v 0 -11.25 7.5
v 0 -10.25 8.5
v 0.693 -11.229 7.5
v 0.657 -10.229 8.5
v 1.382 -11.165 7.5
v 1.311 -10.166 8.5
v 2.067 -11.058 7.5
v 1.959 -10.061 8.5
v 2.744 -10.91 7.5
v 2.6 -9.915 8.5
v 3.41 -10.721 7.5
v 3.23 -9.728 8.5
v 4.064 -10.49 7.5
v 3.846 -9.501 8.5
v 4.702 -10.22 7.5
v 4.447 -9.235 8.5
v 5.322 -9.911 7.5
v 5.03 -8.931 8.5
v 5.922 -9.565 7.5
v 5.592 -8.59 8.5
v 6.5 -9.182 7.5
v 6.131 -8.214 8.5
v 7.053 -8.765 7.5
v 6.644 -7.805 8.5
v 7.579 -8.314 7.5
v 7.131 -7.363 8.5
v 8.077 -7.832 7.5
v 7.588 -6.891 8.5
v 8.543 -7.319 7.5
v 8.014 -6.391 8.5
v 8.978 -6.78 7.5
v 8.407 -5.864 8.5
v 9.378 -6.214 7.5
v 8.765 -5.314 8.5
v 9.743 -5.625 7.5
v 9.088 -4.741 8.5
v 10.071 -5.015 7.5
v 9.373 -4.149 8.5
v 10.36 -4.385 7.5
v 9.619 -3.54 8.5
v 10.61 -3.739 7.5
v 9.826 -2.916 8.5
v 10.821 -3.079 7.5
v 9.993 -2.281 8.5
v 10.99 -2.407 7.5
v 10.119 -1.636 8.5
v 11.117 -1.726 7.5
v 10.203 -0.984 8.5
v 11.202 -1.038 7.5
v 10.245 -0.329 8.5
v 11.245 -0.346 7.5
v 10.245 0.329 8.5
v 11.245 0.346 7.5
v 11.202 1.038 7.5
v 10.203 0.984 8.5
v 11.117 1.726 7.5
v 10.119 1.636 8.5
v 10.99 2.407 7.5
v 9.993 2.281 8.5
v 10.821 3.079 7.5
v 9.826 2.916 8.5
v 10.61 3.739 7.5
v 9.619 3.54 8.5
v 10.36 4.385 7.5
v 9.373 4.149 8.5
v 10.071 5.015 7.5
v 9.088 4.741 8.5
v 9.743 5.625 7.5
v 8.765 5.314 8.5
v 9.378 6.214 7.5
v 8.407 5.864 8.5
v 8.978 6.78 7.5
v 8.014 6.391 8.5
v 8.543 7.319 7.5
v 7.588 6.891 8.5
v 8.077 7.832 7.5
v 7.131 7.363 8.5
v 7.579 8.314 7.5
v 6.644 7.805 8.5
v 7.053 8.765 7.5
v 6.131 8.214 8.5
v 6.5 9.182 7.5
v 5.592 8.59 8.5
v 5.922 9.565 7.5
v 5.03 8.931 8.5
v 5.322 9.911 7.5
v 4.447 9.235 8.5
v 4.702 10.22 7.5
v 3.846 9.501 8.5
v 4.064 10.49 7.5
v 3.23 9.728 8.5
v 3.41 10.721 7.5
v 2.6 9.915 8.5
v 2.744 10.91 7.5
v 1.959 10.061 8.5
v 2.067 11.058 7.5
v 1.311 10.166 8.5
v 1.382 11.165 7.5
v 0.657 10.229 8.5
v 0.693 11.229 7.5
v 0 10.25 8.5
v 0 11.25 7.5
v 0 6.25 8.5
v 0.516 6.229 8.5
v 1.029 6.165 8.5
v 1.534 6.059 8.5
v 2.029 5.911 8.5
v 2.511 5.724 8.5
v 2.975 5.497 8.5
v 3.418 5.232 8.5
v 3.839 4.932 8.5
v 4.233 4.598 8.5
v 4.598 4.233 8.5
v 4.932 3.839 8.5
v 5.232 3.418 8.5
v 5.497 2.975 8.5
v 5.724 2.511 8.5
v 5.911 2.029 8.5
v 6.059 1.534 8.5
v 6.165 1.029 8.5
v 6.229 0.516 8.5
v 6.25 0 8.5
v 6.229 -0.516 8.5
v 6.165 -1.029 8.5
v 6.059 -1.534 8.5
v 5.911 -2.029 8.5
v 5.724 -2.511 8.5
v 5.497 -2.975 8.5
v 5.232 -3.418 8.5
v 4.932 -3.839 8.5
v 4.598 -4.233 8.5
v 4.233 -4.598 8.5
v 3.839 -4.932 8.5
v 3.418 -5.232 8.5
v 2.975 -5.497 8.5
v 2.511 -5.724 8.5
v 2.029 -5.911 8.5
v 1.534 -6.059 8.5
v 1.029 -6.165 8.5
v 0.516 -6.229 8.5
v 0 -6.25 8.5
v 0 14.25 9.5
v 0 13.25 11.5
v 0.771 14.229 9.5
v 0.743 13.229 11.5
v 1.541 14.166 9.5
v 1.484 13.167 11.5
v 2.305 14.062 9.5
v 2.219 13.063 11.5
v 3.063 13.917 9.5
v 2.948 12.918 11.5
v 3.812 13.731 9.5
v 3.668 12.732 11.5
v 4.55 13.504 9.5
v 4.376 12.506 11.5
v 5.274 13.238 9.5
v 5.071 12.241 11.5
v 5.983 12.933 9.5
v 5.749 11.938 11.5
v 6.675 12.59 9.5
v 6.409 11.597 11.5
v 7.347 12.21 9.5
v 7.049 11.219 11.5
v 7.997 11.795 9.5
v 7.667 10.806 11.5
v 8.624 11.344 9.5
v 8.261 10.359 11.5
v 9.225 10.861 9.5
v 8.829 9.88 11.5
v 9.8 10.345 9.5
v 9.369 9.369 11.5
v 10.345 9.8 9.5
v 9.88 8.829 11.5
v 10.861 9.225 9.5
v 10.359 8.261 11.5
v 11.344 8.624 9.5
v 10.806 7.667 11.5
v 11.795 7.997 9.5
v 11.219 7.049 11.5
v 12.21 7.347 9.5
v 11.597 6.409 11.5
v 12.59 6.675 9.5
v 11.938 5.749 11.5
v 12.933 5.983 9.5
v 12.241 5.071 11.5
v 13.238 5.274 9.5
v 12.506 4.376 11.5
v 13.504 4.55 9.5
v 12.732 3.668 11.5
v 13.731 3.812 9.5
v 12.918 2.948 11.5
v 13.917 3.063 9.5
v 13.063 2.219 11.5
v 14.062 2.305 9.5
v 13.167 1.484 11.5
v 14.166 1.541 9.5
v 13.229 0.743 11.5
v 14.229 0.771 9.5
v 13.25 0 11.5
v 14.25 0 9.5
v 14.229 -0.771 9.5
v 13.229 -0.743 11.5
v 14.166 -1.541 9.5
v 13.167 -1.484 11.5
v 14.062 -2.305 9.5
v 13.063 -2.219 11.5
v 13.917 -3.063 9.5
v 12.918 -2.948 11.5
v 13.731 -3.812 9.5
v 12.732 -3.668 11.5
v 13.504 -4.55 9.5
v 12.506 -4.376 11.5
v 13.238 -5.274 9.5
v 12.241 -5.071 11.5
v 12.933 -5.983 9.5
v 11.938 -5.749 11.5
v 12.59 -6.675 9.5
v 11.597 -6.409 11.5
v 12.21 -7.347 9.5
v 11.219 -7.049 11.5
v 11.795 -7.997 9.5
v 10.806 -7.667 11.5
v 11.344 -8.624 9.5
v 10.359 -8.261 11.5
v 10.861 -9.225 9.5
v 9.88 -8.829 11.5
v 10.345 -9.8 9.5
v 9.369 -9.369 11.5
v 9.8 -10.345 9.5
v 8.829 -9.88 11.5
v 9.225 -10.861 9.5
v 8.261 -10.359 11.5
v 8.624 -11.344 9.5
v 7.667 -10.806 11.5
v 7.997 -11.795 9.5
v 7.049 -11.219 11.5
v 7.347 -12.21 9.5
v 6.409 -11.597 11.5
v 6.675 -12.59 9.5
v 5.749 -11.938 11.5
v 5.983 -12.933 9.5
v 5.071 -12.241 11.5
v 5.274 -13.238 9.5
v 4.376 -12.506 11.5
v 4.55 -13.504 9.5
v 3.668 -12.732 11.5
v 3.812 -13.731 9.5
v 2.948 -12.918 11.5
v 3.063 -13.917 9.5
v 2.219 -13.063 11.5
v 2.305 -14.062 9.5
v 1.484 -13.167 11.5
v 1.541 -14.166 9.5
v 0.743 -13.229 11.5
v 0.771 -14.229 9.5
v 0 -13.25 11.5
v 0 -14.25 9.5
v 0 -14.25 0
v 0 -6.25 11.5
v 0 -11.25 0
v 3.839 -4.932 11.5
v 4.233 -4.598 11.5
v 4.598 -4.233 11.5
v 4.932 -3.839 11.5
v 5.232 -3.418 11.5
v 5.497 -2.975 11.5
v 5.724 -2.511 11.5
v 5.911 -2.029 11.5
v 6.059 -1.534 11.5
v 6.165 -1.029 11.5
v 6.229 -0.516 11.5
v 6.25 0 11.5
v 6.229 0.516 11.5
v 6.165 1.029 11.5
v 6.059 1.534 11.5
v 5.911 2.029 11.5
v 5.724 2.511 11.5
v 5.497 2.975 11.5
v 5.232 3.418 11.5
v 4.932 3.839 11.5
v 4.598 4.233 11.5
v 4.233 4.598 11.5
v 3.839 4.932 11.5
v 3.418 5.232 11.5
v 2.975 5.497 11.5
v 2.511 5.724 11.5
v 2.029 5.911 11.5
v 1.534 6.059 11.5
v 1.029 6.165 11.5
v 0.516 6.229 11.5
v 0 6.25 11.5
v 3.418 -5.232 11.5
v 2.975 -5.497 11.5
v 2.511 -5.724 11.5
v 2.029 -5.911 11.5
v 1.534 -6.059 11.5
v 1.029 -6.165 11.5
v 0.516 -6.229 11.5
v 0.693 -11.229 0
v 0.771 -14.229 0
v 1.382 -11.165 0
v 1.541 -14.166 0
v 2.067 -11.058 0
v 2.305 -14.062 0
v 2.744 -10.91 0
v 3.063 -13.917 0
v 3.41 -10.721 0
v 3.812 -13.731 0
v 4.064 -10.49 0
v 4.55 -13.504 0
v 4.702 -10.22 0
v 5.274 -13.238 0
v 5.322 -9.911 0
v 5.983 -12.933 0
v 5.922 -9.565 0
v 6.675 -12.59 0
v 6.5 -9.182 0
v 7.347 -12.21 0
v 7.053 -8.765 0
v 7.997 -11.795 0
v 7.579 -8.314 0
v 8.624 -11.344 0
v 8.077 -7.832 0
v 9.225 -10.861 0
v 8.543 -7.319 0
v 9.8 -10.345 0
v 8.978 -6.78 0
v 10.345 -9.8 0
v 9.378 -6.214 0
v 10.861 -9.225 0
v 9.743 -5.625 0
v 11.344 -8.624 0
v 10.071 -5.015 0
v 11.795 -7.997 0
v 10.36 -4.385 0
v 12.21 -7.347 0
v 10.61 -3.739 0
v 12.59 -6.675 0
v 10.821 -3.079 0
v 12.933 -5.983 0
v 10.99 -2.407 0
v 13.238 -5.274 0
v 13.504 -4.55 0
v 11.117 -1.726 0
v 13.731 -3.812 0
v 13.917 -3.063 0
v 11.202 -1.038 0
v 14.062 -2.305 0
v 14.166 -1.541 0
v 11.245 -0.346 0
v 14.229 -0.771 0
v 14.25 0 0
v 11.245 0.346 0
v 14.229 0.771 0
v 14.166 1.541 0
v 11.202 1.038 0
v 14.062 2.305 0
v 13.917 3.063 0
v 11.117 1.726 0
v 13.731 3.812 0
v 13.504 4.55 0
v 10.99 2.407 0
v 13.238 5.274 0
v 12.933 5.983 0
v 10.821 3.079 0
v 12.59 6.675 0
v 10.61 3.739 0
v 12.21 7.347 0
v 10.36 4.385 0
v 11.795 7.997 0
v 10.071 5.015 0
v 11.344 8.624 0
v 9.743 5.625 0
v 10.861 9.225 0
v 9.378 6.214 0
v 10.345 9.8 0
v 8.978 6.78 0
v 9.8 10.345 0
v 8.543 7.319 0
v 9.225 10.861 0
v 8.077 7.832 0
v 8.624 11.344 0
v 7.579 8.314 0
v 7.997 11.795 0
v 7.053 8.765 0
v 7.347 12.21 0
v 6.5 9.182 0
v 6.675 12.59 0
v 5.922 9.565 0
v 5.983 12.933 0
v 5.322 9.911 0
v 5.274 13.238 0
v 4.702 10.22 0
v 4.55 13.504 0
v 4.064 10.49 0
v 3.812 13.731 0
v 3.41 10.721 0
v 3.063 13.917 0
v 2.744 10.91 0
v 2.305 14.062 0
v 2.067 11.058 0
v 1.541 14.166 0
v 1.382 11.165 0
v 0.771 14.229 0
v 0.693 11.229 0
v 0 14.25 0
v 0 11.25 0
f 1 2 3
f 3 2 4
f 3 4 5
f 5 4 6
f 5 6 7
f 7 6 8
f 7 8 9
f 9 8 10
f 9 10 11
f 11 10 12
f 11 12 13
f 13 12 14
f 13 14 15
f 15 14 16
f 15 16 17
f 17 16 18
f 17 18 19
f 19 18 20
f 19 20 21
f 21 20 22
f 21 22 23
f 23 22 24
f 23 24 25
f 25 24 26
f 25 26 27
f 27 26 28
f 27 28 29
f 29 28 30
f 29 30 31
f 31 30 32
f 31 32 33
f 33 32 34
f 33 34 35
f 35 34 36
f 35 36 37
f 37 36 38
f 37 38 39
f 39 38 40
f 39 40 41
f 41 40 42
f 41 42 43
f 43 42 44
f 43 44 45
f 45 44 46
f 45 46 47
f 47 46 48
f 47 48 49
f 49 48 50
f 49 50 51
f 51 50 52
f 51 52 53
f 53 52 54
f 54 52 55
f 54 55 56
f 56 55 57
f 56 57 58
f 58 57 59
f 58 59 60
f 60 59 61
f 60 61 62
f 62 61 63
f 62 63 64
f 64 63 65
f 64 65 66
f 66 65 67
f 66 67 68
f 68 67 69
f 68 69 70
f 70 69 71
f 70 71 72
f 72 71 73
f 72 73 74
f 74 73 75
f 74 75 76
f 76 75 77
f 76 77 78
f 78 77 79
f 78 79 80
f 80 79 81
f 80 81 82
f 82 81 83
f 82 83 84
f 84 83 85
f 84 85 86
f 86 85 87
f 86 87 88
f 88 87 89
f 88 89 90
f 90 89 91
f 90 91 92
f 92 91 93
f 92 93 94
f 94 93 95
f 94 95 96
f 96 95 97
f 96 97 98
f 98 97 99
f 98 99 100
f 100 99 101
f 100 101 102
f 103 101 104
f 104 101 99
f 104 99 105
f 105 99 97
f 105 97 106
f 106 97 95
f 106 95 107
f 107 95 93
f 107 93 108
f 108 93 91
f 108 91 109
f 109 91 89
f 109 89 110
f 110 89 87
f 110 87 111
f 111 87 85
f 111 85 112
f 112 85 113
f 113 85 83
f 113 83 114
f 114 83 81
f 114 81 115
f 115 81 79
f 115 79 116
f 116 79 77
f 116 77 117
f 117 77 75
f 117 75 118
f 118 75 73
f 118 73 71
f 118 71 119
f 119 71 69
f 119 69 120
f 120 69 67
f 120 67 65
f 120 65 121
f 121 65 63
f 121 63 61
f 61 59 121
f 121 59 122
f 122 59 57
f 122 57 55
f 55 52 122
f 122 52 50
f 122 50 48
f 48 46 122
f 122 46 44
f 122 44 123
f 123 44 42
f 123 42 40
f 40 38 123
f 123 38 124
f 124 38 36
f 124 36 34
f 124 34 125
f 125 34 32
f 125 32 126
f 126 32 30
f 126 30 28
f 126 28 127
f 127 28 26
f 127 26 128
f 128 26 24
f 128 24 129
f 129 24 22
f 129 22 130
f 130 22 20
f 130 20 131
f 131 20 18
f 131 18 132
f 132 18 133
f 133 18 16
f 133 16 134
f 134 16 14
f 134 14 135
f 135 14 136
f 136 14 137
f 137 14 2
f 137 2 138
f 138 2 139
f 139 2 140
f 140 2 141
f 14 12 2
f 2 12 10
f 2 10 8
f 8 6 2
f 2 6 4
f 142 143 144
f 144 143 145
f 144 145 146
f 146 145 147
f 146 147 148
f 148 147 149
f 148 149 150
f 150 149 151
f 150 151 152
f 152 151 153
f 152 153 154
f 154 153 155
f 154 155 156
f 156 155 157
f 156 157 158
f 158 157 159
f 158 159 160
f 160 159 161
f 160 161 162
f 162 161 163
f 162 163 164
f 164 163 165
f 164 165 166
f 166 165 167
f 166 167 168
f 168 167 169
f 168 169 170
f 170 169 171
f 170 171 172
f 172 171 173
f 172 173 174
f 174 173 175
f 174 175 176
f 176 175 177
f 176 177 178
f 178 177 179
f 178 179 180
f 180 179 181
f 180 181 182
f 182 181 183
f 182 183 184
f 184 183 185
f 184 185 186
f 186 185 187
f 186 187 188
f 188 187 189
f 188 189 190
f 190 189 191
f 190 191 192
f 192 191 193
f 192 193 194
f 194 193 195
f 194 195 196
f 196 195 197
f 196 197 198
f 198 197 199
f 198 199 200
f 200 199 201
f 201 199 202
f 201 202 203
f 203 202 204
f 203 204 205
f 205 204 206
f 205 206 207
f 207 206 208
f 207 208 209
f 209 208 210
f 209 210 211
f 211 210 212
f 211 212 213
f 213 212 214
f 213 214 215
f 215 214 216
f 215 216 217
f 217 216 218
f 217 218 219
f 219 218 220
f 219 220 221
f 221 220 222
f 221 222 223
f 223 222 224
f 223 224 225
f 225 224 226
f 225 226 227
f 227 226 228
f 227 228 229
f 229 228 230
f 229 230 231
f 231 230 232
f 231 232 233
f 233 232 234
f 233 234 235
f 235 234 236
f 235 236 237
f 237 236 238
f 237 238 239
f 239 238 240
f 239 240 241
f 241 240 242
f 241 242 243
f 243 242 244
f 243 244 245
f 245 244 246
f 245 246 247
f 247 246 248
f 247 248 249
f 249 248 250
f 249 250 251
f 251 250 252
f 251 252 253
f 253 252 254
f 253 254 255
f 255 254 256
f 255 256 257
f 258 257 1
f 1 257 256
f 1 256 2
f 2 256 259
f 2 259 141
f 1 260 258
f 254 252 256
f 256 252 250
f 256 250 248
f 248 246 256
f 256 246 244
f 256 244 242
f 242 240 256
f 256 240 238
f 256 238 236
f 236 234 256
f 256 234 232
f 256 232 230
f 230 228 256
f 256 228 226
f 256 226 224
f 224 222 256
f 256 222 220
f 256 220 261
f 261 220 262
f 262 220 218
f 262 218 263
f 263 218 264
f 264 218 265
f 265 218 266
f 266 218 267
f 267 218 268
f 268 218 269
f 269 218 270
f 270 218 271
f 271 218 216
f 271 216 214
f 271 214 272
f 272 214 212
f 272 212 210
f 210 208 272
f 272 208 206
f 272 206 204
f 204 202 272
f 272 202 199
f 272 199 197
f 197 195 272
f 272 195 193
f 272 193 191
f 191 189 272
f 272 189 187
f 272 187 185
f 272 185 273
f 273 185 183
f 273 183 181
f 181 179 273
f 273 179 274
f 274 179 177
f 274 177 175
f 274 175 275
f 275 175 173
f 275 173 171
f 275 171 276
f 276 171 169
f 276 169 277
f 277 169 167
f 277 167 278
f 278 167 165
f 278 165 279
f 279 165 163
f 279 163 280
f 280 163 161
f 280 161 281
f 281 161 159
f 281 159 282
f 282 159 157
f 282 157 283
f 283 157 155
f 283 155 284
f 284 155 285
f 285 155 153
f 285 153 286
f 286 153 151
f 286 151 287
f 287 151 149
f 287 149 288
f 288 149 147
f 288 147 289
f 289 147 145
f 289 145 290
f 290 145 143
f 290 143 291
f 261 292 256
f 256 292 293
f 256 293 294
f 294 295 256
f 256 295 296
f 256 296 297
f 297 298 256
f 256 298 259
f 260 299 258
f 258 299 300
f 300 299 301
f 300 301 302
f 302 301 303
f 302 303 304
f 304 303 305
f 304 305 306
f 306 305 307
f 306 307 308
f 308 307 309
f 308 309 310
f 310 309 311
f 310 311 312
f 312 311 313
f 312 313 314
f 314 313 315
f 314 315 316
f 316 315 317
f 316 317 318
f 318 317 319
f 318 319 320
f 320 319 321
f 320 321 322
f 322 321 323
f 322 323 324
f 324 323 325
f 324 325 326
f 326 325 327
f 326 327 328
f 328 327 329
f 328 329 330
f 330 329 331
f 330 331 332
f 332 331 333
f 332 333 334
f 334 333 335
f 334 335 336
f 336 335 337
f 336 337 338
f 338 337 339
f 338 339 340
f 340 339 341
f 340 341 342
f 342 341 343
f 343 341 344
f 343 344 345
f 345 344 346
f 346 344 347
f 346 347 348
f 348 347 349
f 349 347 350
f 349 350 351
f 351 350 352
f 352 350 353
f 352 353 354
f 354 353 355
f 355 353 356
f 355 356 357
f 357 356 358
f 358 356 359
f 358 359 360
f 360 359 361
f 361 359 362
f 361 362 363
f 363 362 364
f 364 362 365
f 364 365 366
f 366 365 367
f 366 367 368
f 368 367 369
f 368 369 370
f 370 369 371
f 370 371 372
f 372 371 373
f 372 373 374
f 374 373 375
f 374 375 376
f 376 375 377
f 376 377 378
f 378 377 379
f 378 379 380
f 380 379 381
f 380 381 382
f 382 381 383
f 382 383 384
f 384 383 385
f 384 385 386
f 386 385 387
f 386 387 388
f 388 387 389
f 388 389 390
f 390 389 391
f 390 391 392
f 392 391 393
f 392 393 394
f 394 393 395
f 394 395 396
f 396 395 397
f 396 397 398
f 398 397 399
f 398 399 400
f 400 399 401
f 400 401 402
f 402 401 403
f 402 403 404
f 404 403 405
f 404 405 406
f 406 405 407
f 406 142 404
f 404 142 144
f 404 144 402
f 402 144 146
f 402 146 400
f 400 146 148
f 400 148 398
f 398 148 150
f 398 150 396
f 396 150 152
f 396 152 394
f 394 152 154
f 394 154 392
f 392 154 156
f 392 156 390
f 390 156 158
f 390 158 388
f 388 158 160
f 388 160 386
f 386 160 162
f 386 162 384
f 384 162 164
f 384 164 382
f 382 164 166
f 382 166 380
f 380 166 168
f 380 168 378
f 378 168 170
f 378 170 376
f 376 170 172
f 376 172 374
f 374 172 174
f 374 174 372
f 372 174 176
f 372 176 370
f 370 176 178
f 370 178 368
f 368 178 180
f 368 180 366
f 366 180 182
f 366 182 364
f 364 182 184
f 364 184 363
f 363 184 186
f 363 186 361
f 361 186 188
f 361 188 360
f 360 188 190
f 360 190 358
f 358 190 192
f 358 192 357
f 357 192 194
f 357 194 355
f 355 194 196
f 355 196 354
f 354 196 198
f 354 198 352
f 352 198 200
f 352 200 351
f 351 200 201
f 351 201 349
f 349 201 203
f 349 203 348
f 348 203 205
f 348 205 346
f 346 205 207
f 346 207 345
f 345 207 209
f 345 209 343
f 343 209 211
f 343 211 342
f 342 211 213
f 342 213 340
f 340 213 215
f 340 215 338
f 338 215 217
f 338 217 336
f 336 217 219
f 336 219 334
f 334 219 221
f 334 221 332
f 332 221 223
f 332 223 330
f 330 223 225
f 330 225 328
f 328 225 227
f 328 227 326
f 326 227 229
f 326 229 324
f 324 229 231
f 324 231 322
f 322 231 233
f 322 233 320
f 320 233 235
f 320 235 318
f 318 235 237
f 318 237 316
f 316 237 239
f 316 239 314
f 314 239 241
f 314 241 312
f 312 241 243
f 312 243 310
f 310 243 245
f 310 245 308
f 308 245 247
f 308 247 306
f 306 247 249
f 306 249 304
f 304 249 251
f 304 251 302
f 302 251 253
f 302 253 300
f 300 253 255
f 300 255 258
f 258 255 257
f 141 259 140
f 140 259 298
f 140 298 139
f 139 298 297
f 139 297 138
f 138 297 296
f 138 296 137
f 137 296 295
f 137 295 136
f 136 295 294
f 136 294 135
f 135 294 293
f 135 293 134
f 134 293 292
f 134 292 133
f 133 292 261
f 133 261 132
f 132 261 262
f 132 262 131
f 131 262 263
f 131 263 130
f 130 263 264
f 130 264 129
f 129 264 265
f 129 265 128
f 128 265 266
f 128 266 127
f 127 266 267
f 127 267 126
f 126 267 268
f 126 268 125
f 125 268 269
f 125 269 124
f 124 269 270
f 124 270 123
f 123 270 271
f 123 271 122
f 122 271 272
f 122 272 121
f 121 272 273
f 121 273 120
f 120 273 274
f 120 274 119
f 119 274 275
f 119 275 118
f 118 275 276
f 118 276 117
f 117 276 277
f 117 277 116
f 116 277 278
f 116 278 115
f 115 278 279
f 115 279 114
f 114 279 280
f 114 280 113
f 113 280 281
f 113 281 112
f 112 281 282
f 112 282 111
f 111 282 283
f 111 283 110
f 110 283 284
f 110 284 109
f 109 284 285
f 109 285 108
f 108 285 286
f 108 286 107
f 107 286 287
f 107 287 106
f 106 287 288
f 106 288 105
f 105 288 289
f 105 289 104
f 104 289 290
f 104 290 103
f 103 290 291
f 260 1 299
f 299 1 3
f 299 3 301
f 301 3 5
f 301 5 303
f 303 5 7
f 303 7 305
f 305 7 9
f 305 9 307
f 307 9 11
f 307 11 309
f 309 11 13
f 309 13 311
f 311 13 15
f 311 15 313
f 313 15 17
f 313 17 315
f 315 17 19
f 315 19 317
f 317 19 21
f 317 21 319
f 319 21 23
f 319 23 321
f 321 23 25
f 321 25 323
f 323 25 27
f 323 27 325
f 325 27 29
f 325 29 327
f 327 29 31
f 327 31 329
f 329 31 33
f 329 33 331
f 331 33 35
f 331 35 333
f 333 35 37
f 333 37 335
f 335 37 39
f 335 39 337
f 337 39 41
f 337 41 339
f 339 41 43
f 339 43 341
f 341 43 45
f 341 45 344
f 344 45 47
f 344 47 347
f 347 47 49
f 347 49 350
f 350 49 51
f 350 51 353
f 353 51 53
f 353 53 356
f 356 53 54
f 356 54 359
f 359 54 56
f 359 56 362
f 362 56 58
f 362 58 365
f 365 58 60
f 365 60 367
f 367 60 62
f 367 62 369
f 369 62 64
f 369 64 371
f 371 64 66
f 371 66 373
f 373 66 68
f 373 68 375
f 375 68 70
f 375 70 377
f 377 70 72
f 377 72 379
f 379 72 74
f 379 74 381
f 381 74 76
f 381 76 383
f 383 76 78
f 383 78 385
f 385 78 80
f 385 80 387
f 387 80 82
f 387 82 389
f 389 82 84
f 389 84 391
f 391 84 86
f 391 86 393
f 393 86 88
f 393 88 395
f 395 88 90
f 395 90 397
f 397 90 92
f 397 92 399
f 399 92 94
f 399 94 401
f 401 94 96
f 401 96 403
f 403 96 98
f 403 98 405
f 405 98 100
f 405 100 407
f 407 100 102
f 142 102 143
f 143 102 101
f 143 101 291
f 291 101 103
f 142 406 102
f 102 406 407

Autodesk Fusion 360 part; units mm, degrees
sketch "Sketch1" plane through (0, 0, 0) normal (1, 0, 0) x (0, 1, 0)
  line L0 (0, 0) -> (-26.3359, 0) construction
  line L1 (-11.25, 0) -> (-11.25, 8.5)
  line L2 (-11.25, 8.5) -> (-6.25, 8.5)
  line L3 (-11.25, 0) -> (-14.25, 0)
  line L4 (-14.25, 0) -> (-14.25, 11.5)
  line L5 (-14.25, 11.5) -> (-6.25, 11.5)
  line L6 (-6.25, 11.5) -> (-6.25, 8.5)
  line L7 (0, 0) -> (0, 80.4746)
  dimension "d1" = 8.5
  dimension "d3" = 22.5
  dimension "d4" = 12.5
  dimension "d5" = 3
  dimension "d6" = 3
revolve "Revolve1" add sketch "Sketch1" angle 180 about axis through (0, 0, 0) along (0, 0, 1)
chamfer "Chamfer1" distance 1 distance2 2 1 edges at (14.25, 0, 11.5) measured on face at (2.7221, 11.2267, 11.5)
chamfer "Chamfer2" distance 1 distance2 1 1 edges at (11.25, 0, 8.5) measured on face at (7.2314, 8.618, 5.6667)
equation "d6 = d5"
